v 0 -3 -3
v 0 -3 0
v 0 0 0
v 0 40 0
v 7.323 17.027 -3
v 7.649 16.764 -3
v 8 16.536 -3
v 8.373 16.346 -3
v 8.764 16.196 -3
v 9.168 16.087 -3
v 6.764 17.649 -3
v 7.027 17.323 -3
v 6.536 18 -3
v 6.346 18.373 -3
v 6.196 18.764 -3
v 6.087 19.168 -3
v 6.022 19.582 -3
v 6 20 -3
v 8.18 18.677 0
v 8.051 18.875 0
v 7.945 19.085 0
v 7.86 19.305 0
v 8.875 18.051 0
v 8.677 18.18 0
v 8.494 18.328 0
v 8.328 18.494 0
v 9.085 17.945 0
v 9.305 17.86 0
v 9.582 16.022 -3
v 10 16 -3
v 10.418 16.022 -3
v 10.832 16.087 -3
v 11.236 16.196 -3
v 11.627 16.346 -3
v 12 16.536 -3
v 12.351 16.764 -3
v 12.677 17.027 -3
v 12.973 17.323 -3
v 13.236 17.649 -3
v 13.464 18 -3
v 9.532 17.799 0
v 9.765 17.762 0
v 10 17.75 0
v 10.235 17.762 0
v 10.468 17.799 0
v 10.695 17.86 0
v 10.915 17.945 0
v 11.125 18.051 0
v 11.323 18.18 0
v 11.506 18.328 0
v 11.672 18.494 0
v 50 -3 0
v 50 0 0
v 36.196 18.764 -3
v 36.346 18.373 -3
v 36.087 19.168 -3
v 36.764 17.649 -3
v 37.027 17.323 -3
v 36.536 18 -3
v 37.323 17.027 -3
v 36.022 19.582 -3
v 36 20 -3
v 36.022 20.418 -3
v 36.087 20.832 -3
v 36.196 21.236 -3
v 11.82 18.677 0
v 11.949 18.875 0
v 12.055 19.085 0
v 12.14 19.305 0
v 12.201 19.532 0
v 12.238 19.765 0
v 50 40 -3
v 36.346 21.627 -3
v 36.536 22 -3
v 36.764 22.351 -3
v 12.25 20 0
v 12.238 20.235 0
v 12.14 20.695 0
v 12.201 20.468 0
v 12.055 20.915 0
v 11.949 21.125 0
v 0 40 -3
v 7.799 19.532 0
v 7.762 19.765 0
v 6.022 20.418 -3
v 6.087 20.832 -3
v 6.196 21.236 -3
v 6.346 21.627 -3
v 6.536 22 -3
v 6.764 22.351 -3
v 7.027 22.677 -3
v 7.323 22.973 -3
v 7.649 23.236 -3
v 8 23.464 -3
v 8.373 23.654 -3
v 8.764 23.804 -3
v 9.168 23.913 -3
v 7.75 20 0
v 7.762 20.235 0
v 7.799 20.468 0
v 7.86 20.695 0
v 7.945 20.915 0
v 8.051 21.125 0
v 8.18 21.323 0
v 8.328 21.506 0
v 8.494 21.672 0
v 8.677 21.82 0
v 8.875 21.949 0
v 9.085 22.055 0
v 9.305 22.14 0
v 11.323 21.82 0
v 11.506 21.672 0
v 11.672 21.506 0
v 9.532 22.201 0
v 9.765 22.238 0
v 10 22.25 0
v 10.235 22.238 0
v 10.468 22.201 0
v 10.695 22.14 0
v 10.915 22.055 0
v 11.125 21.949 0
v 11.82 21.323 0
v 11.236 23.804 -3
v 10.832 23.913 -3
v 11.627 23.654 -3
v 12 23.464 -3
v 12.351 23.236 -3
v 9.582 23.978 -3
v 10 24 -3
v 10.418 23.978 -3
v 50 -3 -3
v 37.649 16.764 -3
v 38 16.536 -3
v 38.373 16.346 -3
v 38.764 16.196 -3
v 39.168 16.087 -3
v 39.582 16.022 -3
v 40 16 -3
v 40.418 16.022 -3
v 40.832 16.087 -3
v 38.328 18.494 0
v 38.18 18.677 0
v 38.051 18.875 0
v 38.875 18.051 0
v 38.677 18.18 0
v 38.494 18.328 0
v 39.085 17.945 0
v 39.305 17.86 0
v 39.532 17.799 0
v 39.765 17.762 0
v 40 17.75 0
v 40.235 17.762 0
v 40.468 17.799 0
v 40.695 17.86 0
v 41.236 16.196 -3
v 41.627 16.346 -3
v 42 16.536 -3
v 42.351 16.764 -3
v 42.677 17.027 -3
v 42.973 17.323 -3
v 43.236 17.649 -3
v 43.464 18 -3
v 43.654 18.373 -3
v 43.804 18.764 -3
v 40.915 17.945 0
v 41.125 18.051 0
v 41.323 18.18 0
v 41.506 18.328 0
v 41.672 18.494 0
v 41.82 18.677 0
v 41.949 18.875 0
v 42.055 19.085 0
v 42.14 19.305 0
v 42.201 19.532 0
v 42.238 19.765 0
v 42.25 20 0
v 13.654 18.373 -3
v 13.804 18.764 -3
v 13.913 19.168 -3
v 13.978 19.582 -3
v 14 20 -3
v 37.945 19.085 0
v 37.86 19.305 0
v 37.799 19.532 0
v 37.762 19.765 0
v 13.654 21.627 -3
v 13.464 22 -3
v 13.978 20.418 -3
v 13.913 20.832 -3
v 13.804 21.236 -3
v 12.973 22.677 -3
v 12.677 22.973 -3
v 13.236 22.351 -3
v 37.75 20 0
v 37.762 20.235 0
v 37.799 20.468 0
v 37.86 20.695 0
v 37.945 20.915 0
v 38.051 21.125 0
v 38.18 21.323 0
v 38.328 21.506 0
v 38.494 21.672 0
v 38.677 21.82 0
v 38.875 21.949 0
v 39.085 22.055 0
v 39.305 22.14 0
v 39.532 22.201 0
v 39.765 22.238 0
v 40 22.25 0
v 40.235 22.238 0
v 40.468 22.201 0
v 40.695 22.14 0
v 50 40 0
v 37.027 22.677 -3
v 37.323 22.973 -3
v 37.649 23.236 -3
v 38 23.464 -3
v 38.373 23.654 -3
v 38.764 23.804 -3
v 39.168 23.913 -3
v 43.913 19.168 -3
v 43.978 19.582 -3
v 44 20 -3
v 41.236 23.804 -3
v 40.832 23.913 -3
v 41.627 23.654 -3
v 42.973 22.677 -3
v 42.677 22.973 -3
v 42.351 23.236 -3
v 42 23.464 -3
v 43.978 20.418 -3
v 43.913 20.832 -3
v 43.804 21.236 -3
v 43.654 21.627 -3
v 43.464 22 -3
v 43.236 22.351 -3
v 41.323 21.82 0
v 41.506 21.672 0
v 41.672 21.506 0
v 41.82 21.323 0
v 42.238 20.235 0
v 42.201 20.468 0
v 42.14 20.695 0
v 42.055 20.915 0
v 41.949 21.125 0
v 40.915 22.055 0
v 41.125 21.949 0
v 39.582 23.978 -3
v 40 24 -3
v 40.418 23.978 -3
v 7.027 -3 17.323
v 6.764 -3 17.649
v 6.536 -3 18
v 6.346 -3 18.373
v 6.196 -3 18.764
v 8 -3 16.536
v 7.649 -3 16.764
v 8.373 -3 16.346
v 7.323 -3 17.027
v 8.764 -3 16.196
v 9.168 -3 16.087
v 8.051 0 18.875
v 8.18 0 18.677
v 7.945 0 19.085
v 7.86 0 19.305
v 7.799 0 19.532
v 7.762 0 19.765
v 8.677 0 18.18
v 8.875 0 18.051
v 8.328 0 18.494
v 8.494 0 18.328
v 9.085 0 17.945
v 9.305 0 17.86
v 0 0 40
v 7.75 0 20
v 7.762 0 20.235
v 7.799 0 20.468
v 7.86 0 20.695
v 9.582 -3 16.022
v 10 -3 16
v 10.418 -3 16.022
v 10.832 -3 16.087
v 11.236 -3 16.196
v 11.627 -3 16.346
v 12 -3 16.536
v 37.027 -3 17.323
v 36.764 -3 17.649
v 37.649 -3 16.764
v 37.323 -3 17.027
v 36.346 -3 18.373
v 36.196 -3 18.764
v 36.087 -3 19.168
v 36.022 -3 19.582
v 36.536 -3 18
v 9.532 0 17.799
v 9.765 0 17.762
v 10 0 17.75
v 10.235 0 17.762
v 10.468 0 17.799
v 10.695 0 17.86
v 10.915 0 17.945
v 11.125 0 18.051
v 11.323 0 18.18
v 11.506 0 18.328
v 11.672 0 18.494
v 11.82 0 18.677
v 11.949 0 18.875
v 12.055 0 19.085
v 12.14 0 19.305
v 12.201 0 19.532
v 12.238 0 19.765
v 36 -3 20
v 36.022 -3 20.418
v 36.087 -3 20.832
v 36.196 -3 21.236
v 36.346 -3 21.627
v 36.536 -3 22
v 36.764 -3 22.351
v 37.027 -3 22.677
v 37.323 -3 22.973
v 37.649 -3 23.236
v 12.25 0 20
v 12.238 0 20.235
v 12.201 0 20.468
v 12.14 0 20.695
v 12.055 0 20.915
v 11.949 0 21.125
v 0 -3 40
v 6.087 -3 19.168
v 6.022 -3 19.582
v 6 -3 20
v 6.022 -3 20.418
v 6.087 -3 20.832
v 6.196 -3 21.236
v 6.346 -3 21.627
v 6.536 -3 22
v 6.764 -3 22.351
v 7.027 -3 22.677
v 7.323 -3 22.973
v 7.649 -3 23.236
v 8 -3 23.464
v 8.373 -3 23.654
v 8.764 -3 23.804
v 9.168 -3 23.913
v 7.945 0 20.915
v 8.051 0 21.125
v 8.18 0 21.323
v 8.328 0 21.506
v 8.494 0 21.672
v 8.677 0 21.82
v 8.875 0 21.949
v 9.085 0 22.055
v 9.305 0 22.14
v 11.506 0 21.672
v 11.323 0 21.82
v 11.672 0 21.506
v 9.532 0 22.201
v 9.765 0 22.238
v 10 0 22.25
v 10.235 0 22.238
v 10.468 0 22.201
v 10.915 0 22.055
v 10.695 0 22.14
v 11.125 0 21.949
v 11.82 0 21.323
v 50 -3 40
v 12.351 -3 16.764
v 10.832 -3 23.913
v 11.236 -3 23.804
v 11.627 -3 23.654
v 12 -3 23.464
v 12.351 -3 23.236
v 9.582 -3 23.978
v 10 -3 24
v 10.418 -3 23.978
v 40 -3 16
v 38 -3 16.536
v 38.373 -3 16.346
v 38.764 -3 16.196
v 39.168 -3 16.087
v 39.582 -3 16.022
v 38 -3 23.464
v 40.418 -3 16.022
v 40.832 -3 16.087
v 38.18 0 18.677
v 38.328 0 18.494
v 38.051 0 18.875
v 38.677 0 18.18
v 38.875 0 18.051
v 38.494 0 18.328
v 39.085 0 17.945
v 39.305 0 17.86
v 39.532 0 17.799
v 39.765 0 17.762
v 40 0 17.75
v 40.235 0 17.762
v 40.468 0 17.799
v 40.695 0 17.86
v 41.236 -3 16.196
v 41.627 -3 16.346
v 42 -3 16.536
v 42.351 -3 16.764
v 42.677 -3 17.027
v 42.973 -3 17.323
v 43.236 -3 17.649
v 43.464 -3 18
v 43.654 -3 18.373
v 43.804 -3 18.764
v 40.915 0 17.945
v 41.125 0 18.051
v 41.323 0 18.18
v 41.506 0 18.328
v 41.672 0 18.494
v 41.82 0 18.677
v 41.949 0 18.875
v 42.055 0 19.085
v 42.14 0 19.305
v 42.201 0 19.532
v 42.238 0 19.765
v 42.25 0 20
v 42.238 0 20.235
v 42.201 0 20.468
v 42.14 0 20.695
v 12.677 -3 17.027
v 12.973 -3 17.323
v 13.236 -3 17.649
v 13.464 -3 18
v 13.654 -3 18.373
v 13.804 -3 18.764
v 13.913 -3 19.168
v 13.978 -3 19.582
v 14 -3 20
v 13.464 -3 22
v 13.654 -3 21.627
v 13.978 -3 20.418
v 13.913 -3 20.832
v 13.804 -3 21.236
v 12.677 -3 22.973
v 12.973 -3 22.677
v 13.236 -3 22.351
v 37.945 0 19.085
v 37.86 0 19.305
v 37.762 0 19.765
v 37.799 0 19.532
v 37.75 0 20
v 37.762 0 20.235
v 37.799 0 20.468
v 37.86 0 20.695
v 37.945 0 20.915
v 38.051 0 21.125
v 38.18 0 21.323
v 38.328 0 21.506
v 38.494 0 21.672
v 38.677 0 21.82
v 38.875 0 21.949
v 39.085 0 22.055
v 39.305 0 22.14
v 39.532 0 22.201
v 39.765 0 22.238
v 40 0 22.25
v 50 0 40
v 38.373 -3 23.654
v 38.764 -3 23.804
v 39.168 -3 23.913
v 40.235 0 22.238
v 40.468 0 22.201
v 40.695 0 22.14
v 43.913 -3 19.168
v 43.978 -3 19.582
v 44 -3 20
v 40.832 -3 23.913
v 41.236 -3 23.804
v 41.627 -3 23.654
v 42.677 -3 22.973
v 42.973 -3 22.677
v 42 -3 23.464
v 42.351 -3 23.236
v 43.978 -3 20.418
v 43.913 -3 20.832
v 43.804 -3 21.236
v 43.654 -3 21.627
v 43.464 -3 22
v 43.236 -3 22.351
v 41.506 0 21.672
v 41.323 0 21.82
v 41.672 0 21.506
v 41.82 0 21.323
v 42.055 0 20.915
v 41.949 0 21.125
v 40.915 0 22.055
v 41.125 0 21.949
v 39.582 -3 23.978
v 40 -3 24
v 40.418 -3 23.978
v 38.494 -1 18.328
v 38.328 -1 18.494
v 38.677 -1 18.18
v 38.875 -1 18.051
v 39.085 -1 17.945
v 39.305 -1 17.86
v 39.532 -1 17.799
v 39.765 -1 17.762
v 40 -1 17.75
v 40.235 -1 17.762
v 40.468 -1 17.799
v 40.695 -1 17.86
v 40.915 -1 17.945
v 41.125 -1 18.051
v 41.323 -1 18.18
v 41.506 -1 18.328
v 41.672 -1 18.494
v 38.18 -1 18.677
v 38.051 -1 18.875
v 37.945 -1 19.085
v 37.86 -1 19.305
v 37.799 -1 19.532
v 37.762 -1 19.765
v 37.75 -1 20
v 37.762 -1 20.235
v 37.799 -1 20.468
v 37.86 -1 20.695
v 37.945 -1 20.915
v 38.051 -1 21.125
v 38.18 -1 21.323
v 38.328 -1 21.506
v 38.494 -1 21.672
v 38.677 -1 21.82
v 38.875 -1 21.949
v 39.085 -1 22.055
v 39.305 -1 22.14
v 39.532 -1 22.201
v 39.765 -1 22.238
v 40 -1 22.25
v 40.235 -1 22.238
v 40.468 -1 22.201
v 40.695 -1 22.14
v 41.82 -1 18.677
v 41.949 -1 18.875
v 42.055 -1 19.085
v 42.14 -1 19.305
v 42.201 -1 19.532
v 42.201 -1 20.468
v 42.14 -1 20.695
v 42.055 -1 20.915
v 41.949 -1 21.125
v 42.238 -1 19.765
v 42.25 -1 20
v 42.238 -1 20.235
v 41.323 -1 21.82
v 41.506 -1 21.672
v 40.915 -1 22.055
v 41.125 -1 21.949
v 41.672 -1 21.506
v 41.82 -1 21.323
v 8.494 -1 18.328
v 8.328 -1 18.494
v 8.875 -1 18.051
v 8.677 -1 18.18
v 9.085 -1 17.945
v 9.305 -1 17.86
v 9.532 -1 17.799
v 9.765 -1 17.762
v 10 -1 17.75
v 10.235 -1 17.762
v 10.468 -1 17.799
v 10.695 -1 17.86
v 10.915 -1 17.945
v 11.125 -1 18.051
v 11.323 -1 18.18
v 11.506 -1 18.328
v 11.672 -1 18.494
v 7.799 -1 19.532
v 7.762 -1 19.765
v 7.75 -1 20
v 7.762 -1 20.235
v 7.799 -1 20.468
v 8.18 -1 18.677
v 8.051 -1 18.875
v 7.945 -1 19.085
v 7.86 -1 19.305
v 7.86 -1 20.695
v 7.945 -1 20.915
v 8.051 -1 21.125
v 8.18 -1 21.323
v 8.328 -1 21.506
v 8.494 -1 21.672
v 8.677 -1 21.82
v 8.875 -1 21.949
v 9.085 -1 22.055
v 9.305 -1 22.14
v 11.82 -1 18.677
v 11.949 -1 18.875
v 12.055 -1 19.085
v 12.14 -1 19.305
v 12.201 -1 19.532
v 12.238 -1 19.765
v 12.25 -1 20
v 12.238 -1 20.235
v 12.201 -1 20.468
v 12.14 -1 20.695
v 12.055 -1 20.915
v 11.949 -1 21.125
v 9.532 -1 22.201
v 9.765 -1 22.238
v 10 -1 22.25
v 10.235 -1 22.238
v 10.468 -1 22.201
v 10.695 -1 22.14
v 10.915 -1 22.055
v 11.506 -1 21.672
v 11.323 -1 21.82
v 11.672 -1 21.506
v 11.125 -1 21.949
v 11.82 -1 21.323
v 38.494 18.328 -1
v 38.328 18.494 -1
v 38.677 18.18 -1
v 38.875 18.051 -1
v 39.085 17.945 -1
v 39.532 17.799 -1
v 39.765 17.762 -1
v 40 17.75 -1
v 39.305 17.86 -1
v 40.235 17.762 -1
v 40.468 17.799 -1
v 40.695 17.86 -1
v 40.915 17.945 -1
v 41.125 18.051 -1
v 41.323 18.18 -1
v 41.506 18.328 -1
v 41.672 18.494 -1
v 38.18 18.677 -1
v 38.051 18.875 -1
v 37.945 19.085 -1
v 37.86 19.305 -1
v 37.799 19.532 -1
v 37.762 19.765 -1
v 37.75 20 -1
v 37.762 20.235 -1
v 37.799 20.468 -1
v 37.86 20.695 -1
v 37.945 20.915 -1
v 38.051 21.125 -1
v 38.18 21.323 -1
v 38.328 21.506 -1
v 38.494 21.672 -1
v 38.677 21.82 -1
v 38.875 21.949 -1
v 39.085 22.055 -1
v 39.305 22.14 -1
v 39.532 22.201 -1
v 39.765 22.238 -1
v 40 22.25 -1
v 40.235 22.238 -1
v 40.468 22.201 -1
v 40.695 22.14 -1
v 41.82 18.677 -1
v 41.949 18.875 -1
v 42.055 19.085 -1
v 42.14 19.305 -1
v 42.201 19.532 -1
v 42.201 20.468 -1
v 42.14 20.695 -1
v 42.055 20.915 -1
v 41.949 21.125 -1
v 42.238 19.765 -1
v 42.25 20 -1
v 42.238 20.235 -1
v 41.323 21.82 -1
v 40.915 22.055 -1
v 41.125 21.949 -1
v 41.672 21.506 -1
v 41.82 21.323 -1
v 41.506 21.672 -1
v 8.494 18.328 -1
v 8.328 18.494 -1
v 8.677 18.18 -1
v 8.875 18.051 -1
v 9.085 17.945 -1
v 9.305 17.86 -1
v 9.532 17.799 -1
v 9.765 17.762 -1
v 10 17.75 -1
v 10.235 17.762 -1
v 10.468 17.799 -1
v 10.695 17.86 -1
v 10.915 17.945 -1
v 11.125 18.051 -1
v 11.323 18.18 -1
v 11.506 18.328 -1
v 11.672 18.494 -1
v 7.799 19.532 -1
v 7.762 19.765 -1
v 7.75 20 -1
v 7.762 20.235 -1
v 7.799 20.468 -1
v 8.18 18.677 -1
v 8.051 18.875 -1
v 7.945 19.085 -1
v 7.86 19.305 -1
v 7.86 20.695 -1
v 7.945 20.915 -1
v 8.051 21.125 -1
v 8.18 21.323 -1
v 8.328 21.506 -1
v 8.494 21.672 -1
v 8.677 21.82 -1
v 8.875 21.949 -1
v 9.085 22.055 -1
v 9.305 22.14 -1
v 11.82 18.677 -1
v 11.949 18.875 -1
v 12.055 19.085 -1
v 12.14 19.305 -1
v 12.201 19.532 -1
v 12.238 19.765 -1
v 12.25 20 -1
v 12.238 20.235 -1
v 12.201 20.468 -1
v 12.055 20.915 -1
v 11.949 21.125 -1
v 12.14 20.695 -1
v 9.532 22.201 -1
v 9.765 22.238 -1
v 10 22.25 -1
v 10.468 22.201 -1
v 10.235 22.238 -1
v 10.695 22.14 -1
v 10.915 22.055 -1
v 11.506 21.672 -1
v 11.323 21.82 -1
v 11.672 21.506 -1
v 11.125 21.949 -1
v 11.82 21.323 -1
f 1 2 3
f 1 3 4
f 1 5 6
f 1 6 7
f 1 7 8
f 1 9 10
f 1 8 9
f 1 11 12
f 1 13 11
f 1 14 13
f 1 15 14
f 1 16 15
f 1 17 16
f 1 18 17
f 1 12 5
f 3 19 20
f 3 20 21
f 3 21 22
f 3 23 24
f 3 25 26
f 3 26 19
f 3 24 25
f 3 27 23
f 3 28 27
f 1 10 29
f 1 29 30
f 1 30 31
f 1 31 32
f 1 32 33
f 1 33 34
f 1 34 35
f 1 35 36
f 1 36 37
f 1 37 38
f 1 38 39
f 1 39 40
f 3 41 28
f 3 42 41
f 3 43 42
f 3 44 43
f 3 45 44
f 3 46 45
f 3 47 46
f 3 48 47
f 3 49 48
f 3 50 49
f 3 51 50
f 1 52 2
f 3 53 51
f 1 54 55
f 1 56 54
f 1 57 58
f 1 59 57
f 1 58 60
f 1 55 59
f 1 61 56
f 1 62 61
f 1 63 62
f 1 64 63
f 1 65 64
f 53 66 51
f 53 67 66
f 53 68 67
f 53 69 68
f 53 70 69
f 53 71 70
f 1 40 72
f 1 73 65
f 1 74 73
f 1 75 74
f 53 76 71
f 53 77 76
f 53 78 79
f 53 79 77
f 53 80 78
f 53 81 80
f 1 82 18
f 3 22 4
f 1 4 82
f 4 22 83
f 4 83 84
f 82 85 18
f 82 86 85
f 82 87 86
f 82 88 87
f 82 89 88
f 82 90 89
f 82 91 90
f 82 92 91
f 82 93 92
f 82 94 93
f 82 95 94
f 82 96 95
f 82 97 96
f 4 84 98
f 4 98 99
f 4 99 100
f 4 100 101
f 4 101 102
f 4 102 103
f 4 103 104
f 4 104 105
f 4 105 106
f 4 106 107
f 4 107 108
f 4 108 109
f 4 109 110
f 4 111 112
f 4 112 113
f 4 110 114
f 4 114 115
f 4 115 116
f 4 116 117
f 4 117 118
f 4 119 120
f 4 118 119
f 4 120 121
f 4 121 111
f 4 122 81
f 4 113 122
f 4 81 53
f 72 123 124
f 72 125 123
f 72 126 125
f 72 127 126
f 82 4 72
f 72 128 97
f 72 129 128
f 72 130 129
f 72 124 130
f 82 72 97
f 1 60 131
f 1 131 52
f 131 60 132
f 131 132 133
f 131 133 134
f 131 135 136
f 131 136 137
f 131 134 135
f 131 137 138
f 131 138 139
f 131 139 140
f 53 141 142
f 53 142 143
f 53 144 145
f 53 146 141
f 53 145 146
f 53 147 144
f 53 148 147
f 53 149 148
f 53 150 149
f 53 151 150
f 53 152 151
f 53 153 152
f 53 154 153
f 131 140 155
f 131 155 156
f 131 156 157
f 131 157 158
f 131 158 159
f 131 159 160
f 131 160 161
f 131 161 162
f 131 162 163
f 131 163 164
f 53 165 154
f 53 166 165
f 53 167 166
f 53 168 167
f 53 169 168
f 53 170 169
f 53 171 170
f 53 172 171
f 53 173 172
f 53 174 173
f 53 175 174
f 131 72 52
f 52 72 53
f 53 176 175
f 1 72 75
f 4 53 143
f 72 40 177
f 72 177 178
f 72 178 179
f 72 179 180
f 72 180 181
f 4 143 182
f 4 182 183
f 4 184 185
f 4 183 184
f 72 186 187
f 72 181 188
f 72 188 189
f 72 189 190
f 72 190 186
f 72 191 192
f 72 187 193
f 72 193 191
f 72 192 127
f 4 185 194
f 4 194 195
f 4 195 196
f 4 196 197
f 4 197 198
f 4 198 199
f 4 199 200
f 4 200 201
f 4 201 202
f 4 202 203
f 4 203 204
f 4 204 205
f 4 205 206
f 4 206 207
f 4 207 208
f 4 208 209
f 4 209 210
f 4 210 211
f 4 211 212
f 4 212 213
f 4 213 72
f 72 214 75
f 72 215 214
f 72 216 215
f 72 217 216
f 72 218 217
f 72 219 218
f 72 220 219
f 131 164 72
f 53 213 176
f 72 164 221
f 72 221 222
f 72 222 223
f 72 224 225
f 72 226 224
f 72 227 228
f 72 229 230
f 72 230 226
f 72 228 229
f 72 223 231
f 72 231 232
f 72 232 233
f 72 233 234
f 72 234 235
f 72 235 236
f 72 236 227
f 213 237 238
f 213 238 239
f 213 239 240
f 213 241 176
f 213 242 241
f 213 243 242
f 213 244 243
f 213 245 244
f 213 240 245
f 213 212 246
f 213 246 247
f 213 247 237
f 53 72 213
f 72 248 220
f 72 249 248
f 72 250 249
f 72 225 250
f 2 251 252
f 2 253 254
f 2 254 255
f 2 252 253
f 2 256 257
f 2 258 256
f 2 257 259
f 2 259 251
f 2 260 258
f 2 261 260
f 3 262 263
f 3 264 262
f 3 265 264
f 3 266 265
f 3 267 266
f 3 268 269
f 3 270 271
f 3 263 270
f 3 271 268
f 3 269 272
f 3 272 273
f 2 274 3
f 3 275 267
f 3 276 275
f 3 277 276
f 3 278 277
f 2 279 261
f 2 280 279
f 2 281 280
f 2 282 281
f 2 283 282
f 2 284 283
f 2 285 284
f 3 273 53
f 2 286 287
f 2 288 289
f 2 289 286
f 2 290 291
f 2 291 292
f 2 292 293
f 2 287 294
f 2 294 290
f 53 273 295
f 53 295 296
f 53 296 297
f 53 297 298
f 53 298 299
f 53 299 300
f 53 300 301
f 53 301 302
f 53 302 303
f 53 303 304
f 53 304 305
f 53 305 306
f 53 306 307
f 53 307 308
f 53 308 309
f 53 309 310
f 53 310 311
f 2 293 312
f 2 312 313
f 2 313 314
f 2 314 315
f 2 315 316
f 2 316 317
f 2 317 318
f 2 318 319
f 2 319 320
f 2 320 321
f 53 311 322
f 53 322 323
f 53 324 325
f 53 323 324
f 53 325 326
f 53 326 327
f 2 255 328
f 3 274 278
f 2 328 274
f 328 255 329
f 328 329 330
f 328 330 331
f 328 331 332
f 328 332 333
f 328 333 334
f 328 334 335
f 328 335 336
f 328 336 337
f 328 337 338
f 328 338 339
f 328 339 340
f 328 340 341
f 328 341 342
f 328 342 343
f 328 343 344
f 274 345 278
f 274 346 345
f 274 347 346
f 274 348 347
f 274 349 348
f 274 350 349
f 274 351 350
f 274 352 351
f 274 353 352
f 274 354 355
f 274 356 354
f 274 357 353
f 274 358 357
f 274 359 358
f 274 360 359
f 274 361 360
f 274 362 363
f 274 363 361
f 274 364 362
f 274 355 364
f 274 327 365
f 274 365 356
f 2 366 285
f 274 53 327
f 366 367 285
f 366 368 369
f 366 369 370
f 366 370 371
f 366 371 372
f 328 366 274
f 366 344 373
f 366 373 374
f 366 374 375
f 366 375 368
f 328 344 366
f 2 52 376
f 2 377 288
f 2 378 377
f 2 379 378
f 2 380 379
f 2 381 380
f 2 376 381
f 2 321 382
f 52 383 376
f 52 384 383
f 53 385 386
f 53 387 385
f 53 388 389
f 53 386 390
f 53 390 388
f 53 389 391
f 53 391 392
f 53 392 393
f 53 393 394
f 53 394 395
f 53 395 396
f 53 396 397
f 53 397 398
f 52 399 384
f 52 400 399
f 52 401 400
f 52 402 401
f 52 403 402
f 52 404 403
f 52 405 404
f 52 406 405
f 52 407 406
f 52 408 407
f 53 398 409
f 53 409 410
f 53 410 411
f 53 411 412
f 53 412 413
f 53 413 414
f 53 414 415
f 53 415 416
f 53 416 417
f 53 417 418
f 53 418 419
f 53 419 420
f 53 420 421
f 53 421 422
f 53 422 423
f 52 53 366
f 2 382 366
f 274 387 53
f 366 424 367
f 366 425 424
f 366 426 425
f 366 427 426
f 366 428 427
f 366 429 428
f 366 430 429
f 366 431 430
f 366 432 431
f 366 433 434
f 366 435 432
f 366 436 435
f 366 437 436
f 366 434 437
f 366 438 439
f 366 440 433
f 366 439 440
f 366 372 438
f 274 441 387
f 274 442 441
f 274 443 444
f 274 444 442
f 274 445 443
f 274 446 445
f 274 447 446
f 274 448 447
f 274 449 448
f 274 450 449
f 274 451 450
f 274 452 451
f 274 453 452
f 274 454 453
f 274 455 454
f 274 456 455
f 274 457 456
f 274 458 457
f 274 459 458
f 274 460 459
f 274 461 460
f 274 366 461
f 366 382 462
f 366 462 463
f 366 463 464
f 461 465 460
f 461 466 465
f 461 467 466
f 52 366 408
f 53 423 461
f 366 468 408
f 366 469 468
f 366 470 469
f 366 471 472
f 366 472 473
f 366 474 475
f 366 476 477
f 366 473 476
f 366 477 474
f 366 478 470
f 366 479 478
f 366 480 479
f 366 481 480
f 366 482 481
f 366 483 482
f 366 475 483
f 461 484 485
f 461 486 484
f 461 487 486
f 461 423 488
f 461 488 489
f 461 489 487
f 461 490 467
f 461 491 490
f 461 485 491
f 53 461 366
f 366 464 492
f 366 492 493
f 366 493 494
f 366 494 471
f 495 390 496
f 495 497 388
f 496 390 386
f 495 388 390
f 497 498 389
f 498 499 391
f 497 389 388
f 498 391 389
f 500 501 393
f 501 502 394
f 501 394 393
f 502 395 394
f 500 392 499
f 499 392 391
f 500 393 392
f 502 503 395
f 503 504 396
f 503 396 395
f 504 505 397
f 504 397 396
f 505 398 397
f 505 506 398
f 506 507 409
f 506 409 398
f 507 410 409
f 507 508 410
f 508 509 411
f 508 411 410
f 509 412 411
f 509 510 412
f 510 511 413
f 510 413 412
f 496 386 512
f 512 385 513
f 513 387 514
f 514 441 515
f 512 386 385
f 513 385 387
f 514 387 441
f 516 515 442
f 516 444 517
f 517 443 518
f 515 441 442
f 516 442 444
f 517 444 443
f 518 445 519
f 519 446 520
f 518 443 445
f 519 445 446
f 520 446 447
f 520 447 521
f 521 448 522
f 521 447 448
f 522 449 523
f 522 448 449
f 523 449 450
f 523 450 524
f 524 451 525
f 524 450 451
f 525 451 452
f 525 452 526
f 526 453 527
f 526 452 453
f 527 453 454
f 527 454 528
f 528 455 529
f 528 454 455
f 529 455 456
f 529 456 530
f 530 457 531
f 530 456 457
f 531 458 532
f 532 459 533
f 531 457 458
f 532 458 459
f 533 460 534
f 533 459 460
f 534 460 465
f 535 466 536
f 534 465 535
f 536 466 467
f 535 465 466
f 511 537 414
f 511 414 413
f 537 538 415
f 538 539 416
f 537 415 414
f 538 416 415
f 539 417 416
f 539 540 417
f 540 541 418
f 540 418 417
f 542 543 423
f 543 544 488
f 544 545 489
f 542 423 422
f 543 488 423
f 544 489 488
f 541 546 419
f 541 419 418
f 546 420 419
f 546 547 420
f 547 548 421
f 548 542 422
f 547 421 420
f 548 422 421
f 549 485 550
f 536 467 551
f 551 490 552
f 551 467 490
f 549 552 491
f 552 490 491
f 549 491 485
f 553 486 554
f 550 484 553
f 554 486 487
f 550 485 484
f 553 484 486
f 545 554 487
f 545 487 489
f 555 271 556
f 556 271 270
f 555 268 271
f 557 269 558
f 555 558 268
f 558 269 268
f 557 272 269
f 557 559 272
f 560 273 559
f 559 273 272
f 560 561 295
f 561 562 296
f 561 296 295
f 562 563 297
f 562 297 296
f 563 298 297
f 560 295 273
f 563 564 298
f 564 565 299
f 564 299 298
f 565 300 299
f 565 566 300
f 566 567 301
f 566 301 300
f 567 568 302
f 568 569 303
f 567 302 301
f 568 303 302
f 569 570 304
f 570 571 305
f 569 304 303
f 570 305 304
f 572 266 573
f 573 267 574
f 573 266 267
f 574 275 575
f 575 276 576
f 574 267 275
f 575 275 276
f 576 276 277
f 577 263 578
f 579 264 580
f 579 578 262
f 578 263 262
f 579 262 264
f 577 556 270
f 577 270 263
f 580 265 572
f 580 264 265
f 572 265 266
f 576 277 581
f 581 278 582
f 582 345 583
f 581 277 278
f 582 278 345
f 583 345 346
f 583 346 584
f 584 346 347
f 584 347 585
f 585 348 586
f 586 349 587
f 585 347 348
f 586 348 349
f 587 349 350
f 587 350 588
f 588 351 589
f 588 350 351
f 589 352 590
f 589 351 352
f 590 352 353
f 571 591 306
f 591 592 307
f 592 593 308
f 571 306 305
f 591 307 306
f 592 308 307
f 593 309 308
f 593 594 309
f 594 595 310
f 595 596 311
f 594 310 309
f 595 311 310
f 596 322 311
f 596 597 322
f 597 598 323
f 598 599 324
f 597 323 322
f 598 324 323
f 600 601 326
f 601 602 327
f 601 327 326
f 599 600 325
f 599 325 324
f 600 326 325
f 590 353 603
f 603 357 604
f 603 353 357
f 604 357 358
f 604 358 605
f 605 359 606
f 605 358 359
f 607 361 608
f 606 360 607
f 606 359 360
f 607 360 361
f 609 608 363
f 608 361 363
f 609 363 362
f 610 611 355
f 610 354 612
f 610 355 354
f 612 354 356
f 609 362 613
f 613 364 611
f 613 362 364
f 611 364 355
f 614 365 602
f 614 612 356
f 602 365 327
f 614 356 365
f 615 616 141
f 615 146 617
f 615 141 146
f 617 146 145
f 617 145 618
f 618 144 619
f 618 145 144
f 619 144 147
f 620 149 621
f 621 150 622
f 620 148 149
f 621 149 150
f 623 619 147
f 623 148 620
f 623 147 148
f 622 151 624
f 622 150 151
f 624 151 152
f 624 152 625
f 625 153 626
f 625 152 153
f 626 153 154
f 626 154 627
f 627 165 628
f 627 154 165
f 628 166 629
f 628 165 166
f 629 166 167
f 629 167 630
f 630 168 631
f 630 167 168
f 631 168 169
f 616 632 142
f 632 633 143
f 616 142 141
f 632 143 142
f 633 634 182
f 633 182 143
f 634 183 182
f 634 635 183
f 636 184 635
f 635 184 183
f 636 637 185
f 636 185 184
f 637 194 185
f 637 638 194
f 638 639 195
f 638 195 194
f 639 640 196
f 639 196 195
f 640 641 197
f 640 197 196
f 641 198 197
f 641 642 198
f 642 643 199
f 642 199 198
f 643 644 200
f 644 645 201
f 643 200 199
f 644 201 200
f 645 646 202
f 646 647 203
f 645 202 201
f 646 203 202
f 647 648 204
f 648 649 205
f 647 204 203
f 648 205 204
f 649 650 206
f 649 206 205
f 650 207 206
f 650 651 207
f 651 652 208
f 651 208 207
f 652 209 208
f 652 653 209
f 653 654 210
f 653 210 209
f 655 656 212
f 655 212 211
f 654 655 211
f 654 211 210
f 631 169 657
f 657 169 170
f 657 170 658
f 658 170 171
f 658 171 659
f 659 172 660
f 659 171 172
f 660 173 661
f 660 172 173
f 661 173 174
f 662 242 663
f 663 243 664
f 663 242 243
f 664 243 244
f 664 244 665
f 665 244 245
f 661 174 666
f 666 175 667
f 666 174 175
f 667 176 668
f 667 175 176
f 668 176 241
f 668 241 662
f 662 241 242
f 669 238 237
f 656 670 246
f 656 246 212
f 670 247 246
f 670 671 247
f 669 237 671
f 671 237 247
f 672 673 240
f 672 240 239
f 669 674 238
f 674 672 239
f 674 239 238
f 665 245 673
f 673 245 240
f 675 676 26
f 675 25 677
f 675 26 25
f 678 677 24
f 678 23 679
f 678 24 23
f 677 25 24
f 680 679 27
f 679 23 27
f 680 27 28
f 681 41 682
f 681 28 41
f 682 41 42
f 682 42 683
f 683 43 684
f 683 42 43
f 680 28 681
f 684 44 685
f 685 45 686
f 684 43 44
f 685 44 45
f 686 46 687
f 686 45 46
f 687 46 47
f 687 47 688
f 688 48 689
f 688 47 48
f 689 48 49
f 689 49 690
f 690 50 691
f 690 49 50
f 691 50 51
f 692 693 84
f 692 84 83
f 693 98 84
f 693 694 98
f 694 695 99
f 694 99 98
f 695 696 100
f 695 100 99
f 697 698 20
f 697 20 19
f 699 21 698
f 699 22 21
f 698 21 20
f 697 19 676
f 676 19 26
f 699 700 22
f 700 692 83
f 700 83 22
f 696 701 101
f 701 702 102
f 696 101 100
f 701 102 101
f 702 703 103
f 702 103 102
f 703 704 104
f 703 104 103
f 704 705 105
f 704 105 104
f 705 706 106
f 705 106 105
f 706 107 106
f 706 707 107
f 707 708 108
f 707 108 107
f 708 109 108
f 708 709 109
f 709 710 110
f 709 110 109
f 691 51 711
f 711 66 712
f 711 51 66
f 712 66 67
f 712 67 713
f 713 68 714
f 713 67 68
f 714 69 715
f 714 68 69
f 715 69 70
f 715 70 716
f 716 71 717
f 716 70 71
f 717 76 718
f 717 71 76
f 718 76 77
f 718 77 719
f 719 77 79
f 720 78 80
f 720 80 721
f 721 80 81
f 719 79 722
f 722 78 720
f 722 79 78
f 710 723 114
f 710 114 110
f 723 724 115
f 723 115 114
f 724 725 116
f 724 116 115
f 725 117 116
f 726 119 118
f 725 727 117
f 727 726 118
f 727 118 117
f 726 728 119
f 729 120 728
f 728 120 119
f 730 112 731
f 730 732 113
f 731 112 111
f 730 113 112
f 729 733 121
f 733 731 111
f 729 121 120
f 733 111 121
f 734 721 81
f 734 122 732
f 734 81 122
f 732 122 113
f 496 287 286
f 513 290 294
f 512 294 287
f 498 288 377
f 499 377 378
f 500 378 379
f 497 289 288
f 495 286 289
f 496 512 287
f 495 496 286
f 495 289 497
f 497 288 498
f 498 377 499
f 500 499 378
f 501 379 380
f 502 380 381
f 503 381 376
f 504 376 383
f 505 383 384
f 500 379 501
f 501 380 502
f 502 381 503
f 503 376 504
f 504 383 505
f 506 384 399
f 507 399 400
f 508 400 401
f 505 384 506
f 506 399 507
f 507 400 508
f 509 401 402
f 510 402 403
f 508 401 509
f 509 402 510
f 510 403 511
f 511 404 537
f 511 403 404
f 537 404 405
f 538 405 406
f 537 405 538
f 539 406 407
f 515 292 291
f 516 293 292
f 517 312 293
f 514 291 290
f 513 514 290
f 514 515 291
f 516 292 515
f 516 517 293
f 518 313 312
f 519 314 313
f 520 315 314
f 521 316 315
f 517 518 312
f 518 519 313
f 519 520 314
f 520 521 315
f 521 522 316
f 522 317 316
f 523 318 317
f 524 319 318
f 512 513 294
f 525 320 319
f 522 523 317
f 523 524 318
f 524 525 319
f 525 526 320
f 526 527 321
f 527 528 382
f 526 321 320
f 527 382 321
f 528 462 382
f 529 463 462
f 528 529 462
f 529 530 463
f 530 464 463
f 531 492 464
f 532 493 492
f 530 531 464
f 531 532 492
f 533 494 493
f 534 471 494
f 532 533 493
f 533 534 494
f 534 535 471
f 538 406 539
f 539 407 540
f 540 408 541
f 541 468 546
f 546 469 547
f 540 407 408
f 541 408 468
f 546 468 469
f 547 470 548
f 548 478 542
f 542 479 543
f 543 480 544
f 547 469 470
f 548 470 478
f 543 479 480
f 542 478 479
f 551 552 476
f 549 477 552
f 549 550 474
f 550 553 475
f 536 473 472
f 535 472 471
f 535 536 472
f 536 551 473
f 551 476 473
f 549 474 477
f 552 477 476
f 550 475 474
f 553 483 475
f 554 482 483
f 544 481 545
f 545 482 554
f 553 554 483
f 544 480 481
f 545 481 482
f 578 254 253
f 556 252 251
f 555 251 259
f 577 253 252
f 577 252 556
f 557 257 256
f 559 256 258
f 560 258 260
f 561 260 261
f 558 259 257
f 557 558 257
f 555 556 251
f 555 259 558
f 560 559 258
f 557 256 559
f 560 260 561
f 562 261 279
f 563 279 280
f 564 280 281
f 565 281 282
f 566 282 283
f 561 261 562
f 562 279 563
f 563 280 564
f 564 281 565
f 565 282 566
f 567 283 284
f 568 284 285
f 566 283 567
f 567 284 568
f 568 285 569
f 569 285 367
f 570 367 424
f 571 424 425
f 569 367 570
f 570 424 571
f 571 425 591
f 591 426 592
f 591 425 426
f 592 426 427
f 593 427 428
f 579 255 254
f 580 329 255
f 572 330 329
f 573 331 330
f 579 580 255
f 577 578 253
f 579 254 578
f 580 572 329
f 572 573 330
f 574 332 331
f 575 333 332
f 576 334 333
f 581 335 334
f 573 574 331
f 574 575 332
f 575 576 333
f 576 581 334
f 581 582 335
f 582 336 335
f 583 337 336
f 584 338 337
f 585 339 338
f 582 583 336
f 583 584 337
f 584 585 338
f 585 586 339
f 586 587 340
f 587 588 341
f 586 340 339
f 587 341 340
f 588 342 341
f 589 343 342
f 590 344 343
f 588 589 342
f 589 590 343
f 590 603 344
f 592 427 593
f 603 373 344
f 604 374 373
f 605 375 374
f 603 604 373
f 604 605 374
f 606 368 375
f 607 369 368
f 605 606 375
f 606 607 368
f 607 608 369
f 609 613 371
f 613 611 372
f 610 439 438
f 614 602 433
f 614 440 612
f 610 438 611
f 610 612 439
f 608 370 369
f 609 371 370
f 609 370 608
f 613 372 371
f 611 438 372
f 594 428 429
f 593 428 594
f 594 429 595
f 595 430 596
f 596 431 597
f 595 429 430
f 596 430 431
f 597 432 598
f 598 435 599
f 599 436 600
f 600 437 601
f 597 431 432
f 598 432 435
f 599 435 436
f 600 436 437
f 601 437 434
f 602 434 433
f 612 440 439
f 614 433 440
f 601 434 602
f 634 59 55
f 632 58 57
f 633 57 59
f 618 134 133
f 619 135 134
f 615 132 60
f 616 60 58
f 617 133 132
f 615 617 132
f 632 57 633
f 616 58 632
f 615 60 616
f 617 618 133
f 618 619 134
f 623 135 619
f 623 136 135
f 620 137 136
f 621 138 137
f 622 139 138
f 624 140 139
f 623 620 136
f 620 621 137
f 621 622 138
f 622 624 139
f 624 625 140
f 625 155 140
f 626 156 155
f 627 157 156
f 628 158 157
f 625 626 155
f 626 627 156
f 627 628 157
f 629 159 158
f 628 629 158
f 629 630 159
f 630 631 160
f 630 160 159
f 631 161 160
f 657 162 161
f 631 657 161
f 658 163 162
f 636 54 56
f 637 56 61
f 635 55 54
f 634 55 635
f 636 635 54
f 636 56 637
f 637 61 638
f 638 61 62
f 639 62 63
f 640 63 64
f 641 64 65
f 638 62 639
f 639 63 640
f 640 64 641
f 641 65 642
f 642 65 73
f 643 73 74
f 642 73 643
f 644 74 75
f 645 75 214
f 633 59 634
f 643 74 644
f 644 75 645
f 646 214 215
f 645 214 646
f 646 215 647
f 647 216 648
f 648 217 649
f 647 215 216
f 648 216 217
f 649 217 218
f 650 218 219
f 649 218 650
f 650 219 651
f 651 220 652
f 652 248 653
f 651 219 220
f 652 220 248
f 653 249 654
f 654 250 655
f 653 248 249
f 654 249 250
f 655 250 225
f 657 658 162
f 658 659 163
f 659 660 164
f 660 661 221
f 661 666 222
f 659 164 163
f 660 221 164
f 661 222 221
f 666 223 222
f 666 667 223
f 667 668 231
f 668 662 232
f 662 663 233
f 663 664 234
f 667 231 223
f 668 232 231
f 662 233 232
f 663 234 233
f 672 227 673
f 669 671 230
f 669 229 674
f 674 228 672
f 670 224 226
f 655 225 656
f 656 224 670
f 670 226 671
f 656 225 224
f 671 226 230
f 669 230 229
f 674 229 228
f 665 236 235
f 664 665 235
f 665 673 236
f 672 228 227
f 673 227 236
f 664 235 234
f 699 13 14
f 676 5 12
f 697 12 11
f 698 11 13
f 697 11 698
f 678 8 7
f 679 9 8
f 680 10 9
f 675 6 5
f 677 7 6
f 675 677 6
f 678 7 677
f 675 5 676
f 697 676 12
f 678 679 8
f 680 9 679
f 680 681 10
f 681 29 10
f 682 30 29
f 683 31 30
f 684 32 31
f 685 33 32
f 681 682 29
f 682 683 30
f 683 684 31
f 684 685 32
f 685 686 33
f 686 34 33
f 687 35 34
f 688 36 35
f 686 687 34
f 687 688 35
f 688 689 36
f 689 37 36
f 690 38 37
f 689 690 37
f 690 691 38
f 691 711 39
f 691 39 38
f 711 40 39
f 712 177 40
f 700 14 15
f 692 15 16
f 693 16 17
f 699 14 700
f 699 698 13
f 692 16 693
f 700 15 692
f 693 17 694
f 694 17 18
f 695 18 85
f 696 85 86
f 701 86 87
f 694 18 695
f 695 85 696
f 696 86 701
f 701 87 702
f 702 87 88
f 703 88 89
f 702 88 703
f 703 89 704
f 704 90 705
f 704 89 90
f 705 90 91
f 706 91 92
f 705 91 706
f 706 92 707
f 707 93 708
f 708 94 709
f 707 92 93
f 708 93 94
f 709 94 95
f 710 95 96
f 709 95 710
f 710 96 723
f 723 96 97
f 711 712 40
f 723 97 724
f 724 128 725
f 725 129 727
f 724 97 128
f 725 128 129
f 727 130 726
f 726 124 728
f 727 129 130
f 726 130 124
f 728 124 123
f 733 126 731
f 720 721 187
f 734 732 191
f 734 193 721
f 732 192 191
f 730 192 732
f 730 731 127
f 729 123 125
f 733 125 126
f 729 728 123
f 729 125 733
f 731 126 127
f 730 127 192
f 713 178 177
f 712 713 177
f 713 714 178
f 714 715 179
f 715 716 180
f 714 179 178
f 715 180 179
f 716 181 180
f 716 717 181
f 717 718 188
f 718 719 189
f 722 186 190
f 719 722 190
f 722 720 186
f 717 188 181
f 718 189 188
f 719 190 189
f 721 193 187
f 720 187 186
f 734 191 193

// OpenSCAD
$fn = 60;

module countersunk_hole() {
    // 貫通穴 (マージンを含めて少し長く配置)
    translate([0, 0, -4]) 
        cylinder(h=6, d=4.5);
        
    // 皿座面 (Z=-3が外側表面、深さ2mmでZ=-1までテーパー)
    // 表面が確実に削れるよう外側に0.1mmマージンを持たせるため、d1を計算して拡張
    translate([0, 0, -3.1]) 
        cylinder(h=2.1, d1=8 + (8 - 4.5) * (0.1 / 2), d2=4.5);
}

difference() {
    union() {
        // 水平面 (内側コーナーから+Y方向に40mm、コーナー部の厚み3mm分を含む)
        translate([0, -3, -3]) 
            cube([50, 43, 3]);
            
        // 垂直面 (内側コーナーから+Z方向に40mm)
        translate([0, -3, 0]) 
            cube([50, 3, 40]);
    }
    
    // 水平面の皿穴 (Y方向の中心20mm、X方向の縁から10mm)
    translate([10, 20, 0]) 
        countersunk_hole();
    translate([40, 20, 0]) 
        countersunk_hole();
        
    // 垂直面の皿穴 (Z方向の中心20mm、X方向の縁から10mm)
    // 皿座面が外側(Y=-3)を向くようにX軸を中心に-90度回転
    translate([10, 0, 20]) 
        rotate([-90, 0, 0]) 
        countersunk_hole();
    translate([40, 0, 20]) 
        rotate([-90, 0, 0]) 
        countersunk_hole();
}
